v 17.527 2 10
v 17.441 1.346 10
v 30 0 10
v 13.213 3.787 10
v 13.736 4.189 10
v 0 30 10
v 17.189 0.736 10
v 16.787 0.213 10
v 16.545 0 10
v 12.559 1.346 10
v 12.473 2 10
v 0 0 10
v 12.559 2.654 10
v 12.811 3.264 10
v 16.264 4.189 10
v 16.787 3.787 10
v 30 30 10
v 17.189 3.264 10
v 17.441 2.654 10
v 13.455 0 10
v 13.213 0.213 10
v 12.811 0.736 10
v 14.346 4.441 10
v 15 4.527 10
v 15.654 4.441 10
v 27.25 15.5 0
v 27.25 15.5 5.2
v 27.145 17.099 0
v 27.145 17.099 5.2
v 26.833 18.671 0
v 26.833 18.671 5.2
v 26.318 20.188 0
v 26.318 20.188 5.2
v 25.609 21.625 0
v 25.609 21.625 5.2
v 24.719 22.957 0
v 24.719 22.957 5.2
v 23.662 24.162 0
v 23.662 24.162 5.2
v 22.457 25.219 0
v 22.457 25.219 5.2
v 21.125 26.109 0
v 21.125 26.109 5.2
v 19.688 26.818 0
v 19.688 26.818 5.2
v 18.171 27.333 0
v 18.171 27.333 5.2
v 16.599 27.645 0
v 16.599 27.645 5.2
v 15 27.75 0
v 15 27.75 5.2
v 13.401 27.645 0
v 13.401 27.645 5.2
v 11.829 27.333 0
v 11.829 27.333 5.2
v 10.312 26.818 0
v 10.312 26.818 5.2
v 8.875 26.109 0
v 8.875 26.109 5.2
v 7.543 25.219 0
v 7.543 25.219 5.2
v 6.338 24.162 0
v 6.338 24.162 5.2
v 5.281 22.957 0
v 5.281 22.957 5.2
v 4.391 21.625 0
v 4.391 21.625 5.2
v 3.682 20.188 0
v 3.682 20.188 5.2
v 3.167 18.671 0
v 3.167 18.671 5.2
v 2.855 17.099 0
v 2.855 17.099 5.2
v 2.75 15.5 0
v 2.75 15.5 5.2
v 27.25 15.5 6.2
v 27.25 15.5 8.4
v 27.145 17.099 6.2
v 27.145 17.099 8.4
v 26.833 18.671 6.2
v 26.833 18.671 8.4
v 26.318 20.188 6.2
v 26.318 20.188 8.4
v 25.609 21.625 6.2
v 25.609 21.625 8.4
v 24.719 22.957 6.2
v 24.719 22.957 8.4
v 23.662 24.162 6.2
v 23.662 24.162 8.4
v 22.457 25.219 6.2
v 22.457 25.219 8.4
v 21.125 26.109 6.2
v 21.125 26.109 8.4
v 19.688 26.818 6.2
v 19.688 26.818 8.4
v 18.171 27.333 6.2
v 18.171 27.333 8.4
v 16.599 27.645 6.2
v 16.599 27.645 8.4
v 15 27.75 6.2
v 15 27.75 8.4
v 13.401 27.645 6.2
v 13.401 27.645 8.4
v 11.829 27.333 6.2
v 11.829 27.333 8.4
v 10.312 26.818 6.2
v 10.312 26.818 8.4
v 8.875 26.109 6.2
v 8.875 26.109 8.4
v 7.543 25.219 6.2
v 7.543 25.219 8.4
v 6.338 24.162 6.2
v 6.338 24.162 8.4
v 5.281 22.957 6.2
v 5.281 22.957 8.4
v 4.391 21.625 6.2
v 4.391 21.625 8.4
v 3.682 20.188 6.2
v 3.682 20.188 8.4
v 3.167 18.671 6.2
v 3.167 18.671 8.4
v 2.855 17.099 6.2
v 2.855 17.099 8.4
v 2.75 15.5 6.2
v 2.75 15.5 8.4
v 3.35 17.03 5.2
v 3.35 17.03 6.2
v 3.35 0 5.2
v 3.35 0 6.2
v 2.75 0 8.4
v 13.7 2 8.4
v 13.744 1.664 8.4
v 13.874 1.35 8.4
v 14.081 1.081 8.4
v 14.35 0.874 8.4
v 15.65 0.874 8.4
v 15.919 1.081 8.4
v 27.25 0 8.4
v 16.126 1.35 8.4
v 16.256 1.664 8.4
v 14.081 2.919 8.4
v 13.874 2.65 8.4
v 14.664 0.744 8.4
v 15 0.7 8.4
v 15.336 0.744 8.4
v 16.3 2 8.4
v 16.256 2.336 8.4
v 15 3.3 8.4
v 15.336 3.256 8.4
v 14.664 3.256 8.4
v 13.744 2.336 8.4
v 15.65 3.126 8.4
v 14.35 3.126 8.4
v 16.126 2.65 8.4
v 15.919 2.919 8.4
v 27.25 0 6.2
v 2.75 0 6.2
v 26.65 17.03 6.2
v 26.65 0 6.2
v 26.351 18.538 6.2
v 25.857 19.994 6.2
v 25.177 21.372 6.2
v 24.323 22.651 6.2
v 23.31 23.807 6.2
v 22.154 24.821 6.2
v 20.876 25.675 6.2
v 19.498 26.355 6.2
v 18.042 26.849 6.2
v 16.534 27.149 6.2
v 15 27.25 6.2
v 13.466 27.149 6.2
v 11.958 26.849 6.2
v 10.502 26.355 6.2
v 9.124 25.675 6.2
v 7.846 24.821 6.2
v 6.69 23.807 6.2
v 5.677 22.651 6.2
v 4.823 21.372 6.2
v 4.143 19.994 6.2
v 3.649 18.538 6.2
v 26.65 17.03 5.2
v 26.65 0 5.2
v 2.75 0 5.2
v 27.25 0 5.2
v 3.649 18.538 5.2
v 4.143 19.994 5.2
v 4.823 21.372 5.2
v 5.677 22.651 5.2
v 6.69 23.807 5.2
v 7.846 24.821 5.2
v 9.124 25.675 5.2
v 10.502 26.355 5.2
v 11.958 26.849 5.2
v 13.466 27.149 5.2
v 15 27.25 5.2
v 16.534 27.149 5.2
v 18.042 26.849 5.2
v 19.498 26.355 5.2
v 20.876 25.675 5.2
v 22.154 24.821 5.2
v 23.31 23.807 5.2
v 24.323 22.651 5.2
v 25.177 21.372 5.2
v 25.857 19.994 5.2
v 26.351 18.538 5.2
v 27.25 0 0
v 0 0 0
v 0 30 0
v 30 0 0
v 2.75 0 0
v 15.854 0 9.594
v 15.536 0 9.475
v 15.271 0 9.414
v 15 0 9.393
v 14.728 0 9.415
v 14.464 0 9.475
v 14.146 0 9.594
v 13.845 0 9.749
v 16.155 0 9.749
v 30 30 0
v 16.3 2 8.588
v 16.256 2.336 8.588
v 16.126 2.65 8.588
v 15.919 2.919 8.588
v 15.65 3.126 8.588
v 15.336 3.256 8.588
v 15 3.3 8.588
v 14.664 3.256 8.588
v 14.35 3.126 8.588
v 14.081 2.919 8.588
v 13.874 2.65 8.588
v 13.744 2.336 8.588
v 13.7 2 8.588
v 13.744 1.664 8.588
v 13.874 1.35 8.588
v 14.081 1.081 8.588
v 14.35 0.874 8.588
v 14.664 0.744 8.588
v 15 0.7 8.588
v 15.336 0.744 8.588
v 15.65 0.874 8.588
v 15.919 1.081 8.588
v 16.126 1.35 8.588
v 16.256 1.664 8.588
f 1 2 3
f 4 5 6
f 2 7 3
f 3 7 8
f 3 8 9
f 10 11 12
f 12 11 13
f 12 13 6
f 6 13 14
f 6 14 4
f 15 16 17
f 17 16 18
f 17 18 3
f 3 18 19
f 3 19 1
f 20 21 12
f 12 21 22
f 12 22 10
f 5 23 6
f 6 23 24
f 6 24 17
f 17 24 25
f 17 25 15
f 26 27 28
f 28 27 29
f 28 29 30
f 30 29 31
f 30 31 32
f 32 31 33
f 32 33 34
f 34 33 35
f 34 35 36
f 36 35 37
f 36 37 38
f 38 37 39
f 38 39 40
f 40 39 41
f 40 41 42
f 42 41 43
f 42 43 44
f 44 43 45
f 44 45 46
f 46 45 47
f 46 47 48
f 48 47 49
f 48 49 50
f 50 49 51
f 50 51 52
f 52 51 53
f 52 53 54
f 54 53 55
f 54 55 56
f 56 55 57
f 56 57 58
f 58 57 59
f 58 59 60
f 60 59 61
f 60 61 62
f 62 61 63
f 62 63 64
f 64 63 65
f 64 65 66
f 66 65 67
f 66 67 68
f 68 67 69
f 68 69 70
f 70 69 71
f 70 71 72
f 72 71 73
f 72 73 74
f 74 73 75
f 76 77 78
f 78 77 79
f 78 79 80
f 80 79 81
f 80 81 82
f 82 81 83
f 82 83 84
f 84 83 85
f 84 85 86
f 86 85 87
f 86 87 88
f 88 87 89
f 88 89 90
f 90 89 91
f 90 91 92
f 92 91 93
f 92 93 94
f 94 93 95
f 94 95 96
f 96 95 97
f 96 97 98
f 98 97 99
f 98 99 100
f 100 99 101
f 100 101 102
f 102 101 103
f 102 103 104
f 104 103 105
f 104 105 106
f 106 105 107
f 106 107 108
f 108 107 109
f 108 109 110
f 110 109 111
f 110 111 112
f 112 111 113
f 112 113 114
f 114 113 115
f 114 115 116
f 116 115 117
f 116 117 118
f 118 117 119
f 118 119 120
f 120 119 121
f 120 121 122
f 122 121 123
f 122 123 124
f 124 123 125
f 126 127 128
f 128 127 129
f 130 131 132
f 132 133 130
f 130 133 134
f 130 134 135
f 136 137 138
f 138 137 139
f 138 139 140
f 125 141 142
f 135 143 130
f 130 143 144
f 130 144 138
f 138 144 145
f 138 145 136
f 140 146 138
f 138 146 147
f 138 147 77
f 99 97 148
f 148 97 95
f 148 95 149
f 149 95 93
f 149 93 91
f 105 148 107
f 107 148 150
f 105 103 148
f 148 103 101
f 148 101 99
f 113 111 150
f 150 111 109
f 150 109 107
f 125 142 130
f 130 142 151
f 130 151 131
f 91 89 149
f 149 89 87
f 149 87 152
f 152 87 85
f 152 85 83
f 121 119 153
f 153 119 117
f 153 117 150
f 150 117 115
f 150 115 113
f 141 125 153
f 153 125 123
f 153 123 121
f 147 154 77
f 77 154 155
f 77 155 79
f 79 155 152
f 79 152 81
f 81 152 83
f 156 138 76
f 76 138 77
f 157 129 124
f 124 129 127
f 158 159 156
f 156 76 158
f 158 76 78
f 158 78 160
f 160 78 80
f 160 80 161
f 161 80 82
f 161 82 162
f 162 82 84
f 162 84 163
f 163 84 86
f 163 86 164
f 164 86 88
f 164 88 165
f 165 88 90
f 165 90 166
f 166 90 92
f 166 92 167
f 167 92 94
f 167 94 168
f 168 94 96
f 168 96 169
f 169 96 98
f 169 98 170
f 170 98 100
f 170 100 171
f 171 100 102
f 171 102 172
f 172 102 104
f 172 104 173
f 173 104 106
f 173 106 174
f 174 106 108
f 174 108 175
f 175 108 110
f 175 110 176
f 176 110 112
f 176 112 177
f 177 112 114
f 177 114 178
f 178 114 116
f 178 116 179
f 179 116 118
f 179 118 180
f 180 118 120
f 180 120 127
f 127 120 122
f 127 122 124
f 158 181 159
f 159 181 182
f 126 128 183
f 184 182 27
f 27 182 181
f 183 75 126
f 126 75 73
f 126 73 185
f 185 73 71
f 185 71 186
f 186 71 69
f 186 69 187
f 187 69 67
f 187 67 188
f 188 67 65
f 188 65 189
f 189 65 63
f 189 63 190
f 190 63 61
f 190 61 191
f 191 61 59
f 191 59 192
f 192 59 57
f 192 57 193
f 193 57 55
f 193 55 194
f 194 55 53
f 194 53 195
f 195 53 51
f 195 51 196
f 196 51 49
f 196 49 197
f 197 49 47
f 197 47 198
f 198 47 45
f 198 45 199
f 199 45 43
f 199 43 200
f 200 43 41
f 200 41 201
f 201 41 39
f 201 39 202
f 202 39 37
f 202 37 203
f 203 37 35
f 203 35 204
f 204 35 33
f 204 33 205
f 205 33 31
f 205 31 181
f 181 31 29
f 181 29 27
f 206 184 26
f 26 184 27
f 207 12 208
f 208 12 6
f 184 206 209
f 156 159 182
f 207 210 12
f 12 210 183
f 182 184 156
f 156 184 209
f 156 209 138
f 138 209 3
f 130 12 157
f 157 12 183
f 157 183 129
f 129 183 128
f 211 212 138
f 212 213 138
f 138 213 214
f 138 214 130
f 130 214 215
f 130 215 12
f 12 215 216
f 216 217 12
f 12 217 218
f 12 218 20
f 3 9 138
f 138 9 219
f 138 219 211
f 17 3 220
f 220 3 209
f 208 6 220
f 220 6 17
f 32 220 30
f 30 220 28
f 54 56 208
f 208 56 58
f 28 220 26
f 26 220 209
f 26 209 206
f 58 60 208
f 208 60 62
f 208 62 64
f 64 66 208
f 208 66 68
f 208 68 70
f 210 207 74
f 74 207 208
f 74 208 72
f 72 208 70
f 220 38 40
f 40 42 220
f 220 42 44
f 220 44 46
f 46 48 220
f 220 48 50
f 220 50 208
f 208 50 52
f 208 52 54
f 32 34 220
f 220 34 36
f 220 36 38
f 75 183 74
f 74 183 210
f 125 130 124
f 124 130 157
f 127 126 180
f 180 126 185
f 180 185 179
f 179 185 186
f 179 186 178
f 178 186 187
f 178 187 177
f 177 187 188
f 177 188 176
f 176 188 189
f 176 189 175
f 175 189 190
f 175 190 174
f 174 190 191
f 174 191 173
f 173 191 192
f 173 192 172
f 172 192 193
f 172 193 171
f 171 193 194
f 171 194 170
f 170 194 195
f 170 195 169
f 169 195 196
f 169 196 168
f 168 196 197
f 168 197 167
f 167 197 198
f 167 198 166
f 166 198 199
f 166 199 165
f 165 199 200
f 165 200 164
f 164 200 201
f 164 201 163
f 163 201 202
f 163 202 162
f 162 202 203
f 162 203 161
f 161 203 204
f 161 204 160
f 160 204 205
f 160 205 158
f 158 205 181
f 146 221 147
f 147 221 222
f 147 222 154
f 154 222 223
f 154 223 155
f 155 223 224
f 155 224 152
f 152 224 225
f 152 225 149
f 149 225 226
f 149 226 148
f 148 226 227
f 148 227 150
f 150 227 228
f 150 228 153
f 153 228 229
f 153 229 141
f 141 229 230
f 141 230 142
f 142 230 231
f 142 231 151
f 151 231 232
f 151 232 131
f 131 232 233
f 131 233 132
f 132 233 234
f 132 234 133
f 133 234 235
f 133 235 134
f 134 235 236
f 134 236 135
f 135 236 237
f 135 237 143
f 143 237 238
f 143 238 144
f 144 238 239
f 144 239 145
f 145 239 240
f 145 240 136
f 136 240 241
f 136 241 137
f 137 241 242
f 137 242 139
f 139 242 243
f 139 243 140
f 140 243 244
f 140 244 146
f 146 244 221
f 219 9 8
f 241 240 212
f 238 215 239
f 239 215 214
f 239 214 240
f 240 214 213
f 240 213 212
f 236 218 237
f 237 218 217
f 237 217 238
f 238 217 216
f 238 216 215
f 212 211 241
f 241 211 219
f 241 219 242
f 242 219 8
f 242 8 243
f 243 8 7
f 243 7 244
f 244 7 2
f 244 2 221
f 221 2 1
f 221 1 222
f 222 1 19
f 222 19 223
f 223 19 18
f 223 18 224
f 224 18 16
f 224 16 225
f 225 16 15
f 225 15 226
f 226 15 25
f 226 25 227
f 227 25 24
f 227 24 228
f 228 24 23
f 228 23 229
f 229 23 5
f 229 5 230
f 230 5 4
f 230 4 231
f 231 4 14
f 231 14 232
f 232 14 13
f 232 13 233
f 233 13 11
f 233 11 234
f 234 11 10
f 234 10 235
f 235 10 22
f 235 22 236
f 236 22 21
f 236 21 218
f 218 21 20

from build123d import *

# Parameters (mm, degrees)
ESQUISSE1_W                                       = 30
ESQUISSE1_H                                       = 30
MAIN_DEPTH                                        = 10
MAIN_FIX_DEPTH                                    = 28.5
BOSS_EXTRU_2_DEPTH                                = 8.4
BOSS_EXTRU_3_DEPTH                                = 1
FRAISAGE_POUR_VIS_T_TE_FRAIS_E_BOMB_E_D           = 2.5999948
FRAISAGE_POUR_VIS_T_TE_FRAIS_E_BOMB_E_CSINK_D     = 5.0546
FRAISAGE_POUR_VIS_T_TE_FRAIS_E_BOMB_E_CSINK_ANGLE = 82


with BuildPart() as part:
    # Esquisse1 → Main (new body)
    with BuildSketch(Plane.XY):
        with Locations((15, 15)):
            Rectangle(ESQUISSE1_W, ESQUISSE1_H)
    extrude(amount=MAIN_DEPTH)

    # Esquisse2 → Main Fix (cut)
    with BuildSketch(Plane.XZ):
        Polygon((2.75, 0), (2.75, 5.2), (3.35, 5.2), (3.35, 6.2), (2.75, 6.2), (2.75, 8.4), (27.25, 8.4), (27.25, 6.2), (26.65, 6.2), (26.65, 5.2), (27.25, 5.2), (27.25, 0), align=None)
    extrude(amount=-MAIN_FIX_DEPTH, mode=Mode.SUBTRACT)

    # Esquisse4 → Boss.-Extru.2 (add)
    with BuildSketch(Plane(origin=(0, 0, 8.4), x_dir=(-1, 0, 0), z_dir=(0, 0, -1))):
        with BuildLine():
            Line((-27.25, 15.5), (-27.25, 28.5))
            Line((-27.25, 28.5), (-2.75, 28.5))
            Line((-2.75, 28.5), (-2.75, 15.5))
            ThreePointArc((-2.75, 15.5), (-15, 27.75), (-27.25, 15.5))
        make_face()
    extrude(amount=BOSS_EXTRU_2_DEPTH)

    # Esquisse5 → Boss.-Extru.3 (add)
    with BuildSketch(Plane(origin=(0, 0, 5.2), x_dir=(-1, 0, 0), z_dir=(0, 0, -1))):
        with BuildLine():
            Line((-3.35, 13.970294146), (0, 13.970294146))
            Line((0, 13.970294146), (0, 30))
            Line((0, 30), (-30, 30))
            Line((-30, 30), (-30, 13.970294146))
            Line((-30, 13.970294146), (-26.65, 13.970294146))
            ThreePointArc((-26.65, 13.970294146), (-15, 27.25), (-3.35, 13.970294146))
        make_face()
    extrude(amount=-BOSS_EXTRU_3_DEPTH)

    # Fraisage pour vis à tête fraisée bombée #33 (through all)
    with Locations(Plane.XY.offset(10)):
        with Locations((15, 2)):
            CounterSinkHole(FRAISAGE_POUR_VIS_T_TE_FRAIS_E_BOMB_E_D / 2, FRAISAGE_POUR_VIS_T_TE_FRAIS_E_BOMB_E_CSINK_D / 2, counter_sink_angle=FRAISAGE_POUR_VIS_T_TE_FRAIS_E_BOMB_E_CSINK_ANGLE)


solid = part.part
